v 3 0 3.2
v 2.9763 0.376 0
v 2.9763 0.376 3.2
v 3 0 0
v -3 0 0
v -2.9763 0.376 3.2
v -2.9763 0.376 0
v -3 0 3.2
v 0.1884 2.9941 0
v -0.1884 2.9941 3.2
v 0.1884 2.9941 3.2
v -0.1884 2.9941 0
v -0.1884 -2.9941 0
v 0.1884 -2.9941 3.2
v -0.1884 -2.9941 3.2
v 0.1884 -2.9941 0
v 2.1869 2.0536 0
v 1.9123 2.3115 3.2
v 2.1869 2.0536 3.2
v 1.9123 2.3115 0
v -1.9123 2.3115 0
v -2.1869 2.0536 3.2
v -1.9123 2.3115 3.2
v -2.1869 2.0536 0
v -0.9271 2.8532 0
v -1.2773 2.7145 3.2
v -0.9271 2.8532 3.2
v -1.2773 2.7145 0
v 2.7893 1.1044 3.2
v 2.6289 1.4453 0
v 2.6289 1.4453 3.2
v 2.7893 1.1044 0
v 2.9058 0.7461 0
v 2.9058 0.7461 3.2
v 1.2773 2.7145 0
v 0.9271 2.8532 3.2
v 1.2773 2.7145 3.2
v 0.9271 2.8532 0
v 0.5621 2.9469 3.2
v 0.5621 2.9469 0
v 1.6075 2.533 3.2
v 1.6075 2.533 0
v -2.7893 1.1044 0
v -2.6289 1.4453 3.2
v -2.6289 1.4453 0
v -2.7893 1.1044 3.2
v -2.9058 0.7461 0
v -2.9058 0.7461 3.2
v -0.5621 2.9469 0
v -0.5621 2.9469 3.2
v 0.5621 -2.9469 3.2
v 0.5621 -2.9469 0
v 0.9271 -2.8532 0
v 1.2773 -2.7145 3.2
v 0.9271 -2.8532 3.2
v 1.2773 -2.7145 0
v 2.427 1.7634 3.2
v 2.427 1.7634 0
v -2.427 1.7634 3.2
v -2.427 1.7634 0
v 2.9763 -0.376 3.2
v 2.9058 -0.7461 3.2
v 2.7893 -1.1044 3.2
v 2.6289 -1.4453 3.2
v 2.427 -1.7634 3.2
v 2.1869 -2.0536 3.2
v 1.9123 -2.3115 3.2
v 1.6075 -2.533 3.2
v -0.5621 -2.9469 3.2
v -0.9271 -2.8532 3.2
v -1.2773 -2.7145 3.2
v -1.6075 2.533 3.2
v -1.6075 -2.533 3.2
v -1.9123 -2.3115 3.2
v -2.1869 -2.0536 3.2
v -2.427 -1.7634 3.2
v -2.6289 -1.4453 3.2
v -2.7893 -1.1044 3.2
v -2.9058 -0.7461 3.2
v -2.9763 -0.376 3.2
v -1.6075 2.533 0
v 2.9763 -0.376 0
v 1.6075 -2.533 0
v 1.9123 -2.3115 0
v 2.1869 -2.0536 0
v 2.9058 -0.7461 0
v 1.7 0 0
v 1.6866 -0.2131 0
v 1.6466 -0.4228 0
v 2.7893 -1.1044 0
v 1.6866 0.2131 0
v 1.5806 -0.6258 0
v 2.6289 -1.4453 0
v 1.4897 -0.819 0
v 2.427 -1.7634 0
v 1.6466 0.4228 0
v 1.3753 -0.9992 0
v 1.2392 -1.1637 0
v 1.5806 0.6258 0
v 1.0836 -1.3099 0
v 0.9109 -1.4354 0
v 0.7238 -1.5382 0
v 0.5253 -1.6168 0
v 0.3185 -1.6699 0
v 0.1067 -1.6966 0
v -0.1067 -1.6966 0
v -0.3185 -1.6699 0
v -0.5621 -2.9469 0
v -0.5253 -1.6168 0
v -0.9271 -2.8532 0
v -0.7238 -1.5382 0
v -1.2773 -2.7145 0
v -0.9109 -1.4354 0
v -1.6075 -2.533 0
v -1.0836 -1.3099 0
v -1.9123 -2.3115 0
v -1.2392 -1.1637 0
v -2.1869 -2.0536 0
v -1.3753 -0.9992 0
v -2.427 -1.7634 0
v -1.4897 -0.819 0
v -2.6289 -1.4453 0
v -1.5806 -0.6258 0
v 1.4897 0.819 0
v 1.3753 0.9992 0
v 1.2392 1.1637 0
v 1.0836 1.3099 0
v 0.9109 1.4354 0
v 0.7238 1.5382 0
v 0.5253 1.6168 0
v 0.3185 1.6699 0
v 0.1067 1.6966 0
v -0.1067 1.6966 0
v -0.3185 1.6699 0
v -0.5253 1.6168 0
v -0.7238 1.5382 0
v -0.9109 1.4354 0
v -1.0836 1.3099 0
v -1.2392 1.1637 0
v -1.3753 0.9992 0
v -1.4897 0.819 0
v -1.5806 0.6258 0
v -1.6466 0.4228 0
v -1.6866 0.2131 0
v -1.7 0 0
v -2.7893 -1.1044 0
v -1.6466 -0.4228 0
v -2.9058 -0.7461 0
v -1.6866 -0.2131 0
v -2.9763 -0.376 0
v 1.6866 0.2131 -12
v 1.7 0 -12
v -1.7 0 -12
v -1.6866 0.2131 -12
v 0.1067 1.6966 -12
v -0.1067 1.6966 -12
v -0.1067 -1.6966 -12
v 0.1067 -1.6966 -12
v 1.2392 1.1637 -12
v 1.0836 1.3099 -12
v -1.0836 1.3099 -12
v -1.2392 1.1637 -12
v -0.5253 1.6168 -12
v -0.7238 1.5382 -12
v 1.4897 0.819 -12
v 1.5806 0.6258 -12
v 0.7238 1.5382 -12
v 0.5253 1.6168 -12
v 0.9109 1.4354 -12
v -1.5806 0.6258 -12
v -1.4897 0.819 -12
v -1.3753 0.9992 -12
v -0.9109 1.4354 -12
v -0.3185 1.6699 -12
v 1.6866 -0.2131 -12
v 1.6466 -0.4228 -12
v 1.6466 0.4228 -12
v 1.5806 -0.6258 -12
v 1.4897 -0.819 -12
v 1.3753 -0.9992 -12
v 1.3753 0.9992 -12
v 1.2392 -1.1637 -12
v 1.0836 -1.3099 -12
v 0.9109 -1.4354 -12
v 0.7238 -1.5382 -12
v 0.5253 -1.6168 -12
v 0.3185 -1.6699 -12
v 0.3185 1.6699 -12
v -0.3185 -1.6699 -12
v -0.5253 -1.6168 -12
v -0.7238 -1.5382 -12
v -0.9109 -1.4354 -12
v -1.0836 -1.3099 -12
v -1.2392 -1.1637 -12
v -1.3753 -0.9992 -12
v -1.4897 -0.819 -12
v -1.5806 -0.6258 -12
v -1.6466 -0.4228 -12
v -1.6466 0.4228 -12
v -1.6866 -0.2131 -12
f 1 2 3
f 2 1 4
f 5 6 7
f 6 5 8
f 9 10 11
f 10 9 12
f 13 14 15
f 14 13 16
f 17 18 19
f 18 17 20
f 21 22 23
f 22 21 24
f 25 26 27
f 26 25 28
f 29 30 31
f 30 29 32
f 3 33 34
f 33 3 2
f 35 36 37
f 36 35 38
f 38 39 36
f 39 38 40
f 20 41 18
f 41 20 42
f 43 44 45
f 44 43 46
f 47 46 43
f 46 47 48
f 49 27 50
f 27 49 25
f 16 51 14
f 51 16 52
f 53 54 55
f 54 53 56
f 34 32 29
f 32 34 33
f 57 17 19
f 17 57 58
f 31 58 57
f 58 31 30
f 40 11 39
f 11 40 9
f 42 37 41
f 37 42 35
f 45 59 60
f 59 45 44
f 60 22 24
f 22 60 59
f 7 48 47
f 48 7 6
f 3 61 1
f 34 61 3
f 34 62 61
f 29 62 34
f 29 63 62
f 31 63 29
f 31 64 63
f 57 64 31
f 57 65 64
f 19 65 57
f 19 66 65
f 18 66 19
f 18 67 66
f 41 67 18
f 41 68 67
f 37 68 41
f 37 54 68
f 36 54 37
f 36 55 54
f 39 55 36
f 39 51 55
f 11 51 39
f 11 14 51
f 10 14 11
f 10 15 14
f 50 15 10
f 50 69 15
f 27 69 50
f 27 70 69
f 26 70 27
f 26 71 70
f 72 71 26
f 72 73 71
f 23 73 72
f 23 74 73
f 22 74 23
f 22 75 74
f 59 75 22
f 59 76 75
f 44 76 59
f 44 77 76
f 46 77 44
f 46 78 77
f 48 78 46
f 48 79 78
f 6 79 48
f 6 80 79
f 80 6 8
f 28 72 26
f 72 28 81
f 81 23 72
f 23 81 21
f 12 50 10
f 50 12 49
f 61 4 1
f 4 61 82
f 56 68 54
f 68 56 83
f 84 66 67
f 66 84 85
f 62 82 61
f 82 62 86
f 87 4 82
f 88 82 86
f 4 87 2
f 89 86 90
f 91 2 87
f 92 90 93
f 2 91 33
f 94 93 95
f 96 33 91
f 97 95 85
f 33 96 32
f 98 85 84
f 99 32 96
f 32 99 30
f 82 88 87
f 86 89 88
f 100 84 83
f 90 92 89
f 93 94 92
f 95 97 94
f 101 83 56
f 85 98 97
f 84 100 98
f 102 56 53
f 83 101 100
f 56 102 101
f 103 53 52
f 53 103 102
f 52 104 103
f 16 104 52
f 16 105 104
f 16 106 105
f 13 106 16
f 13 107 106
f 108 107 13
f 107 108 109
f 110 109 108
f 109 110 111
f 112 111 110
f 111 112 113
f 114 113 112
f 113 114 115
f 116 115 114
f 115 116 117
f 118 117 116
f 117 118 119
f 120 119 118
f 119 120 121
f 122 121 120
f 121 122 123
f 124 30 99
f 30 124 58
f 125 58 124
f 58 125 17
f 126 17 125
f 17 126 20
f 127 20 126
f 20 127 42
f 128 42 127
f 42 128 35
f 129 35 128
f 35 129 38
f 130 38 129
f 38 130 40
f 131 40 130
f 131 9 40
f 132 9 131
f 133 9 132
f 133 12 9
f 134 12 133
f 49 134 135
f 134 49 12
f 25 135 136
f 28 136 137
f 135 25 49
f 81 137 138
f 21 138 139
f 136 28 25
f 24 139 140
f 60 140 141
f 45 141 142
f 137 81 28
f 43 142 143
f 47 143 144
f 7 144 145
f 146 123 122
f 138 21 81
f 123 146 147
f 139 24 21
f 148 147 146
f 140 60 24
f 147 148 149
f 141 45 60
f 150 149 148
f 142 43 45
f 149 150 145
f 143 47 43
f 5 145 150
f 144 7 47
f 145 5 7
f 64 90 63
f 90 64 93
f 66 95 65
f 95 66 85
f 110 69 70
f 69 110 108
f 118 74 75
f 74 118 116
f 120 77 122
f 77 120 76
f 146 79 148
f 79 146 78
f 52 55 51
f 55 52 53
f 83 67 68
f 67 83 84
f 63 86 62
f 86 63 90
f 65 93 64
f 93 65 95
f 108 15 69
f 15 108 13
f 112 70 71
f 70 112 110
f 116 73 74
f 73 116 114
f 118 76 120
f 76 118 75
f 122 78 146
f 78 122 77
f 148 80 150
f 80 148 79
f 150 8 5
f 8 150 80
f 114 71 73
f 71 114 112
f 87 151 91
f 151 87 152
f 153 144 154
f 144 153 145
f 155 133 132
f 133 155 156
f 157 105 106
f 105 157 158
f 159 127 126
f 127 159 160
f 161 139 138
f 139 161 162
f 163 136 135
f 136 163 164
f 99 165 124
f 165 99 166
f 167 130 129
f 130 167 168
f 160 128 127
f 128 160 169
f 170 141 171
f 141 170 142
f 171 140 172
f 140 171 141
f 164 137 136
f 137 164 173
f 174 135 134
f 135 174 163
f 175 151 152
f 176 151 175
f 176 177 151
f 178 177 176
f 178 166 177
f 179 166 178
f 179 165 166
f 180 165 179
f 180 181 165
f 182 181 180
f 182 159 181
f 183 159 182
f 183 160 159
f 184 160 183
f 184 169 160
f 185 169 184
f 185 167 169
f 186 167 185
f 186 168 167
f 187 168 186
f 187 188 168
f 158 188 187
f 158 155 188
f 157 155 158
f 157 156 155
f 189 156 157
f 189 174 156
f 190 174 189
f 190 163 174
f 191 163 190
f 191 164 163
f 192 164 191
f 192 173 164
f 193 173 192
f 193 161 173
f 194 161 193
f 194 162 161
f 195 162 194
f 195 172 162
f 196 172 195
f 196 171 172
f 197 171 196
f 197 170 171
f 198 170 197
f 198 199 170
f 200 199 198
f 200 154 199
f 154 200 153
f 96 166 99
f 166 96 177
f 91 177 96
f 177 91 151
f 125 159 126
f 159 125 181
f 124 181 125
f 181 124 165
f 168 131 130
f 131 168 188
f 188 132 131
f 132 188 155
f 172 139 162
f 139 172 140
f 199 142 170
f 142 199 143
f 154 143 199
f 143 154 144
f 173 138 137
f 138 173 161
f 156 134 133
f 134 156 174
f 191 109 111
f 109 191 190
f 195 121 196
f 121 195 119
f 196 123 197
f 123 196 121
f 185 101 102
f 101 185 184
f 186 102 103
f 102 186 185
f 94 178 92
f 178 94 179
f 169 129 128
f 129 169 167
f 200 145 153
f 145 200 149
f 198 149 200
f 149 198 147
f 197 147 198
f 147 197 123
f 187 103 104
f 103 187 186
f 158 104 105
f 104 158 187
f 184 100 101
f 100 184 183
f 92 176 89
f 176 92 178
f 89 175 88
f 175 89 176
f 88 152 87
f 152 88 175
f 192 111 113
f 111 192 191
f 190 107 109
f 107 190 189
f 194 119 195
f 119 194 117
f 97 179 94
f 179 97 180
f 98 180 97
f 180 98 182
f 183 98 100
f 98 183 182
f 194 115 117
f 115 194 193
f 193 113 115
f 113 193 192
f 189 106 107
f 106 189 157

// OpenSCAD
$fn = 50;


difference() {
	union() {
		translate(v = [0, 0, 0]) {
			rotate(a = [0, 0, 0]) {
				cylinder(h = 3.2000000000, r = 3.0000000000);
			}
		}
		translate(v = [0, 0, -12]) {
			rotate(a = [0, 0, 0]) {
				cylinder(h = 12, r = 1.7000000000);
			}
		}
	}
	union();
}
